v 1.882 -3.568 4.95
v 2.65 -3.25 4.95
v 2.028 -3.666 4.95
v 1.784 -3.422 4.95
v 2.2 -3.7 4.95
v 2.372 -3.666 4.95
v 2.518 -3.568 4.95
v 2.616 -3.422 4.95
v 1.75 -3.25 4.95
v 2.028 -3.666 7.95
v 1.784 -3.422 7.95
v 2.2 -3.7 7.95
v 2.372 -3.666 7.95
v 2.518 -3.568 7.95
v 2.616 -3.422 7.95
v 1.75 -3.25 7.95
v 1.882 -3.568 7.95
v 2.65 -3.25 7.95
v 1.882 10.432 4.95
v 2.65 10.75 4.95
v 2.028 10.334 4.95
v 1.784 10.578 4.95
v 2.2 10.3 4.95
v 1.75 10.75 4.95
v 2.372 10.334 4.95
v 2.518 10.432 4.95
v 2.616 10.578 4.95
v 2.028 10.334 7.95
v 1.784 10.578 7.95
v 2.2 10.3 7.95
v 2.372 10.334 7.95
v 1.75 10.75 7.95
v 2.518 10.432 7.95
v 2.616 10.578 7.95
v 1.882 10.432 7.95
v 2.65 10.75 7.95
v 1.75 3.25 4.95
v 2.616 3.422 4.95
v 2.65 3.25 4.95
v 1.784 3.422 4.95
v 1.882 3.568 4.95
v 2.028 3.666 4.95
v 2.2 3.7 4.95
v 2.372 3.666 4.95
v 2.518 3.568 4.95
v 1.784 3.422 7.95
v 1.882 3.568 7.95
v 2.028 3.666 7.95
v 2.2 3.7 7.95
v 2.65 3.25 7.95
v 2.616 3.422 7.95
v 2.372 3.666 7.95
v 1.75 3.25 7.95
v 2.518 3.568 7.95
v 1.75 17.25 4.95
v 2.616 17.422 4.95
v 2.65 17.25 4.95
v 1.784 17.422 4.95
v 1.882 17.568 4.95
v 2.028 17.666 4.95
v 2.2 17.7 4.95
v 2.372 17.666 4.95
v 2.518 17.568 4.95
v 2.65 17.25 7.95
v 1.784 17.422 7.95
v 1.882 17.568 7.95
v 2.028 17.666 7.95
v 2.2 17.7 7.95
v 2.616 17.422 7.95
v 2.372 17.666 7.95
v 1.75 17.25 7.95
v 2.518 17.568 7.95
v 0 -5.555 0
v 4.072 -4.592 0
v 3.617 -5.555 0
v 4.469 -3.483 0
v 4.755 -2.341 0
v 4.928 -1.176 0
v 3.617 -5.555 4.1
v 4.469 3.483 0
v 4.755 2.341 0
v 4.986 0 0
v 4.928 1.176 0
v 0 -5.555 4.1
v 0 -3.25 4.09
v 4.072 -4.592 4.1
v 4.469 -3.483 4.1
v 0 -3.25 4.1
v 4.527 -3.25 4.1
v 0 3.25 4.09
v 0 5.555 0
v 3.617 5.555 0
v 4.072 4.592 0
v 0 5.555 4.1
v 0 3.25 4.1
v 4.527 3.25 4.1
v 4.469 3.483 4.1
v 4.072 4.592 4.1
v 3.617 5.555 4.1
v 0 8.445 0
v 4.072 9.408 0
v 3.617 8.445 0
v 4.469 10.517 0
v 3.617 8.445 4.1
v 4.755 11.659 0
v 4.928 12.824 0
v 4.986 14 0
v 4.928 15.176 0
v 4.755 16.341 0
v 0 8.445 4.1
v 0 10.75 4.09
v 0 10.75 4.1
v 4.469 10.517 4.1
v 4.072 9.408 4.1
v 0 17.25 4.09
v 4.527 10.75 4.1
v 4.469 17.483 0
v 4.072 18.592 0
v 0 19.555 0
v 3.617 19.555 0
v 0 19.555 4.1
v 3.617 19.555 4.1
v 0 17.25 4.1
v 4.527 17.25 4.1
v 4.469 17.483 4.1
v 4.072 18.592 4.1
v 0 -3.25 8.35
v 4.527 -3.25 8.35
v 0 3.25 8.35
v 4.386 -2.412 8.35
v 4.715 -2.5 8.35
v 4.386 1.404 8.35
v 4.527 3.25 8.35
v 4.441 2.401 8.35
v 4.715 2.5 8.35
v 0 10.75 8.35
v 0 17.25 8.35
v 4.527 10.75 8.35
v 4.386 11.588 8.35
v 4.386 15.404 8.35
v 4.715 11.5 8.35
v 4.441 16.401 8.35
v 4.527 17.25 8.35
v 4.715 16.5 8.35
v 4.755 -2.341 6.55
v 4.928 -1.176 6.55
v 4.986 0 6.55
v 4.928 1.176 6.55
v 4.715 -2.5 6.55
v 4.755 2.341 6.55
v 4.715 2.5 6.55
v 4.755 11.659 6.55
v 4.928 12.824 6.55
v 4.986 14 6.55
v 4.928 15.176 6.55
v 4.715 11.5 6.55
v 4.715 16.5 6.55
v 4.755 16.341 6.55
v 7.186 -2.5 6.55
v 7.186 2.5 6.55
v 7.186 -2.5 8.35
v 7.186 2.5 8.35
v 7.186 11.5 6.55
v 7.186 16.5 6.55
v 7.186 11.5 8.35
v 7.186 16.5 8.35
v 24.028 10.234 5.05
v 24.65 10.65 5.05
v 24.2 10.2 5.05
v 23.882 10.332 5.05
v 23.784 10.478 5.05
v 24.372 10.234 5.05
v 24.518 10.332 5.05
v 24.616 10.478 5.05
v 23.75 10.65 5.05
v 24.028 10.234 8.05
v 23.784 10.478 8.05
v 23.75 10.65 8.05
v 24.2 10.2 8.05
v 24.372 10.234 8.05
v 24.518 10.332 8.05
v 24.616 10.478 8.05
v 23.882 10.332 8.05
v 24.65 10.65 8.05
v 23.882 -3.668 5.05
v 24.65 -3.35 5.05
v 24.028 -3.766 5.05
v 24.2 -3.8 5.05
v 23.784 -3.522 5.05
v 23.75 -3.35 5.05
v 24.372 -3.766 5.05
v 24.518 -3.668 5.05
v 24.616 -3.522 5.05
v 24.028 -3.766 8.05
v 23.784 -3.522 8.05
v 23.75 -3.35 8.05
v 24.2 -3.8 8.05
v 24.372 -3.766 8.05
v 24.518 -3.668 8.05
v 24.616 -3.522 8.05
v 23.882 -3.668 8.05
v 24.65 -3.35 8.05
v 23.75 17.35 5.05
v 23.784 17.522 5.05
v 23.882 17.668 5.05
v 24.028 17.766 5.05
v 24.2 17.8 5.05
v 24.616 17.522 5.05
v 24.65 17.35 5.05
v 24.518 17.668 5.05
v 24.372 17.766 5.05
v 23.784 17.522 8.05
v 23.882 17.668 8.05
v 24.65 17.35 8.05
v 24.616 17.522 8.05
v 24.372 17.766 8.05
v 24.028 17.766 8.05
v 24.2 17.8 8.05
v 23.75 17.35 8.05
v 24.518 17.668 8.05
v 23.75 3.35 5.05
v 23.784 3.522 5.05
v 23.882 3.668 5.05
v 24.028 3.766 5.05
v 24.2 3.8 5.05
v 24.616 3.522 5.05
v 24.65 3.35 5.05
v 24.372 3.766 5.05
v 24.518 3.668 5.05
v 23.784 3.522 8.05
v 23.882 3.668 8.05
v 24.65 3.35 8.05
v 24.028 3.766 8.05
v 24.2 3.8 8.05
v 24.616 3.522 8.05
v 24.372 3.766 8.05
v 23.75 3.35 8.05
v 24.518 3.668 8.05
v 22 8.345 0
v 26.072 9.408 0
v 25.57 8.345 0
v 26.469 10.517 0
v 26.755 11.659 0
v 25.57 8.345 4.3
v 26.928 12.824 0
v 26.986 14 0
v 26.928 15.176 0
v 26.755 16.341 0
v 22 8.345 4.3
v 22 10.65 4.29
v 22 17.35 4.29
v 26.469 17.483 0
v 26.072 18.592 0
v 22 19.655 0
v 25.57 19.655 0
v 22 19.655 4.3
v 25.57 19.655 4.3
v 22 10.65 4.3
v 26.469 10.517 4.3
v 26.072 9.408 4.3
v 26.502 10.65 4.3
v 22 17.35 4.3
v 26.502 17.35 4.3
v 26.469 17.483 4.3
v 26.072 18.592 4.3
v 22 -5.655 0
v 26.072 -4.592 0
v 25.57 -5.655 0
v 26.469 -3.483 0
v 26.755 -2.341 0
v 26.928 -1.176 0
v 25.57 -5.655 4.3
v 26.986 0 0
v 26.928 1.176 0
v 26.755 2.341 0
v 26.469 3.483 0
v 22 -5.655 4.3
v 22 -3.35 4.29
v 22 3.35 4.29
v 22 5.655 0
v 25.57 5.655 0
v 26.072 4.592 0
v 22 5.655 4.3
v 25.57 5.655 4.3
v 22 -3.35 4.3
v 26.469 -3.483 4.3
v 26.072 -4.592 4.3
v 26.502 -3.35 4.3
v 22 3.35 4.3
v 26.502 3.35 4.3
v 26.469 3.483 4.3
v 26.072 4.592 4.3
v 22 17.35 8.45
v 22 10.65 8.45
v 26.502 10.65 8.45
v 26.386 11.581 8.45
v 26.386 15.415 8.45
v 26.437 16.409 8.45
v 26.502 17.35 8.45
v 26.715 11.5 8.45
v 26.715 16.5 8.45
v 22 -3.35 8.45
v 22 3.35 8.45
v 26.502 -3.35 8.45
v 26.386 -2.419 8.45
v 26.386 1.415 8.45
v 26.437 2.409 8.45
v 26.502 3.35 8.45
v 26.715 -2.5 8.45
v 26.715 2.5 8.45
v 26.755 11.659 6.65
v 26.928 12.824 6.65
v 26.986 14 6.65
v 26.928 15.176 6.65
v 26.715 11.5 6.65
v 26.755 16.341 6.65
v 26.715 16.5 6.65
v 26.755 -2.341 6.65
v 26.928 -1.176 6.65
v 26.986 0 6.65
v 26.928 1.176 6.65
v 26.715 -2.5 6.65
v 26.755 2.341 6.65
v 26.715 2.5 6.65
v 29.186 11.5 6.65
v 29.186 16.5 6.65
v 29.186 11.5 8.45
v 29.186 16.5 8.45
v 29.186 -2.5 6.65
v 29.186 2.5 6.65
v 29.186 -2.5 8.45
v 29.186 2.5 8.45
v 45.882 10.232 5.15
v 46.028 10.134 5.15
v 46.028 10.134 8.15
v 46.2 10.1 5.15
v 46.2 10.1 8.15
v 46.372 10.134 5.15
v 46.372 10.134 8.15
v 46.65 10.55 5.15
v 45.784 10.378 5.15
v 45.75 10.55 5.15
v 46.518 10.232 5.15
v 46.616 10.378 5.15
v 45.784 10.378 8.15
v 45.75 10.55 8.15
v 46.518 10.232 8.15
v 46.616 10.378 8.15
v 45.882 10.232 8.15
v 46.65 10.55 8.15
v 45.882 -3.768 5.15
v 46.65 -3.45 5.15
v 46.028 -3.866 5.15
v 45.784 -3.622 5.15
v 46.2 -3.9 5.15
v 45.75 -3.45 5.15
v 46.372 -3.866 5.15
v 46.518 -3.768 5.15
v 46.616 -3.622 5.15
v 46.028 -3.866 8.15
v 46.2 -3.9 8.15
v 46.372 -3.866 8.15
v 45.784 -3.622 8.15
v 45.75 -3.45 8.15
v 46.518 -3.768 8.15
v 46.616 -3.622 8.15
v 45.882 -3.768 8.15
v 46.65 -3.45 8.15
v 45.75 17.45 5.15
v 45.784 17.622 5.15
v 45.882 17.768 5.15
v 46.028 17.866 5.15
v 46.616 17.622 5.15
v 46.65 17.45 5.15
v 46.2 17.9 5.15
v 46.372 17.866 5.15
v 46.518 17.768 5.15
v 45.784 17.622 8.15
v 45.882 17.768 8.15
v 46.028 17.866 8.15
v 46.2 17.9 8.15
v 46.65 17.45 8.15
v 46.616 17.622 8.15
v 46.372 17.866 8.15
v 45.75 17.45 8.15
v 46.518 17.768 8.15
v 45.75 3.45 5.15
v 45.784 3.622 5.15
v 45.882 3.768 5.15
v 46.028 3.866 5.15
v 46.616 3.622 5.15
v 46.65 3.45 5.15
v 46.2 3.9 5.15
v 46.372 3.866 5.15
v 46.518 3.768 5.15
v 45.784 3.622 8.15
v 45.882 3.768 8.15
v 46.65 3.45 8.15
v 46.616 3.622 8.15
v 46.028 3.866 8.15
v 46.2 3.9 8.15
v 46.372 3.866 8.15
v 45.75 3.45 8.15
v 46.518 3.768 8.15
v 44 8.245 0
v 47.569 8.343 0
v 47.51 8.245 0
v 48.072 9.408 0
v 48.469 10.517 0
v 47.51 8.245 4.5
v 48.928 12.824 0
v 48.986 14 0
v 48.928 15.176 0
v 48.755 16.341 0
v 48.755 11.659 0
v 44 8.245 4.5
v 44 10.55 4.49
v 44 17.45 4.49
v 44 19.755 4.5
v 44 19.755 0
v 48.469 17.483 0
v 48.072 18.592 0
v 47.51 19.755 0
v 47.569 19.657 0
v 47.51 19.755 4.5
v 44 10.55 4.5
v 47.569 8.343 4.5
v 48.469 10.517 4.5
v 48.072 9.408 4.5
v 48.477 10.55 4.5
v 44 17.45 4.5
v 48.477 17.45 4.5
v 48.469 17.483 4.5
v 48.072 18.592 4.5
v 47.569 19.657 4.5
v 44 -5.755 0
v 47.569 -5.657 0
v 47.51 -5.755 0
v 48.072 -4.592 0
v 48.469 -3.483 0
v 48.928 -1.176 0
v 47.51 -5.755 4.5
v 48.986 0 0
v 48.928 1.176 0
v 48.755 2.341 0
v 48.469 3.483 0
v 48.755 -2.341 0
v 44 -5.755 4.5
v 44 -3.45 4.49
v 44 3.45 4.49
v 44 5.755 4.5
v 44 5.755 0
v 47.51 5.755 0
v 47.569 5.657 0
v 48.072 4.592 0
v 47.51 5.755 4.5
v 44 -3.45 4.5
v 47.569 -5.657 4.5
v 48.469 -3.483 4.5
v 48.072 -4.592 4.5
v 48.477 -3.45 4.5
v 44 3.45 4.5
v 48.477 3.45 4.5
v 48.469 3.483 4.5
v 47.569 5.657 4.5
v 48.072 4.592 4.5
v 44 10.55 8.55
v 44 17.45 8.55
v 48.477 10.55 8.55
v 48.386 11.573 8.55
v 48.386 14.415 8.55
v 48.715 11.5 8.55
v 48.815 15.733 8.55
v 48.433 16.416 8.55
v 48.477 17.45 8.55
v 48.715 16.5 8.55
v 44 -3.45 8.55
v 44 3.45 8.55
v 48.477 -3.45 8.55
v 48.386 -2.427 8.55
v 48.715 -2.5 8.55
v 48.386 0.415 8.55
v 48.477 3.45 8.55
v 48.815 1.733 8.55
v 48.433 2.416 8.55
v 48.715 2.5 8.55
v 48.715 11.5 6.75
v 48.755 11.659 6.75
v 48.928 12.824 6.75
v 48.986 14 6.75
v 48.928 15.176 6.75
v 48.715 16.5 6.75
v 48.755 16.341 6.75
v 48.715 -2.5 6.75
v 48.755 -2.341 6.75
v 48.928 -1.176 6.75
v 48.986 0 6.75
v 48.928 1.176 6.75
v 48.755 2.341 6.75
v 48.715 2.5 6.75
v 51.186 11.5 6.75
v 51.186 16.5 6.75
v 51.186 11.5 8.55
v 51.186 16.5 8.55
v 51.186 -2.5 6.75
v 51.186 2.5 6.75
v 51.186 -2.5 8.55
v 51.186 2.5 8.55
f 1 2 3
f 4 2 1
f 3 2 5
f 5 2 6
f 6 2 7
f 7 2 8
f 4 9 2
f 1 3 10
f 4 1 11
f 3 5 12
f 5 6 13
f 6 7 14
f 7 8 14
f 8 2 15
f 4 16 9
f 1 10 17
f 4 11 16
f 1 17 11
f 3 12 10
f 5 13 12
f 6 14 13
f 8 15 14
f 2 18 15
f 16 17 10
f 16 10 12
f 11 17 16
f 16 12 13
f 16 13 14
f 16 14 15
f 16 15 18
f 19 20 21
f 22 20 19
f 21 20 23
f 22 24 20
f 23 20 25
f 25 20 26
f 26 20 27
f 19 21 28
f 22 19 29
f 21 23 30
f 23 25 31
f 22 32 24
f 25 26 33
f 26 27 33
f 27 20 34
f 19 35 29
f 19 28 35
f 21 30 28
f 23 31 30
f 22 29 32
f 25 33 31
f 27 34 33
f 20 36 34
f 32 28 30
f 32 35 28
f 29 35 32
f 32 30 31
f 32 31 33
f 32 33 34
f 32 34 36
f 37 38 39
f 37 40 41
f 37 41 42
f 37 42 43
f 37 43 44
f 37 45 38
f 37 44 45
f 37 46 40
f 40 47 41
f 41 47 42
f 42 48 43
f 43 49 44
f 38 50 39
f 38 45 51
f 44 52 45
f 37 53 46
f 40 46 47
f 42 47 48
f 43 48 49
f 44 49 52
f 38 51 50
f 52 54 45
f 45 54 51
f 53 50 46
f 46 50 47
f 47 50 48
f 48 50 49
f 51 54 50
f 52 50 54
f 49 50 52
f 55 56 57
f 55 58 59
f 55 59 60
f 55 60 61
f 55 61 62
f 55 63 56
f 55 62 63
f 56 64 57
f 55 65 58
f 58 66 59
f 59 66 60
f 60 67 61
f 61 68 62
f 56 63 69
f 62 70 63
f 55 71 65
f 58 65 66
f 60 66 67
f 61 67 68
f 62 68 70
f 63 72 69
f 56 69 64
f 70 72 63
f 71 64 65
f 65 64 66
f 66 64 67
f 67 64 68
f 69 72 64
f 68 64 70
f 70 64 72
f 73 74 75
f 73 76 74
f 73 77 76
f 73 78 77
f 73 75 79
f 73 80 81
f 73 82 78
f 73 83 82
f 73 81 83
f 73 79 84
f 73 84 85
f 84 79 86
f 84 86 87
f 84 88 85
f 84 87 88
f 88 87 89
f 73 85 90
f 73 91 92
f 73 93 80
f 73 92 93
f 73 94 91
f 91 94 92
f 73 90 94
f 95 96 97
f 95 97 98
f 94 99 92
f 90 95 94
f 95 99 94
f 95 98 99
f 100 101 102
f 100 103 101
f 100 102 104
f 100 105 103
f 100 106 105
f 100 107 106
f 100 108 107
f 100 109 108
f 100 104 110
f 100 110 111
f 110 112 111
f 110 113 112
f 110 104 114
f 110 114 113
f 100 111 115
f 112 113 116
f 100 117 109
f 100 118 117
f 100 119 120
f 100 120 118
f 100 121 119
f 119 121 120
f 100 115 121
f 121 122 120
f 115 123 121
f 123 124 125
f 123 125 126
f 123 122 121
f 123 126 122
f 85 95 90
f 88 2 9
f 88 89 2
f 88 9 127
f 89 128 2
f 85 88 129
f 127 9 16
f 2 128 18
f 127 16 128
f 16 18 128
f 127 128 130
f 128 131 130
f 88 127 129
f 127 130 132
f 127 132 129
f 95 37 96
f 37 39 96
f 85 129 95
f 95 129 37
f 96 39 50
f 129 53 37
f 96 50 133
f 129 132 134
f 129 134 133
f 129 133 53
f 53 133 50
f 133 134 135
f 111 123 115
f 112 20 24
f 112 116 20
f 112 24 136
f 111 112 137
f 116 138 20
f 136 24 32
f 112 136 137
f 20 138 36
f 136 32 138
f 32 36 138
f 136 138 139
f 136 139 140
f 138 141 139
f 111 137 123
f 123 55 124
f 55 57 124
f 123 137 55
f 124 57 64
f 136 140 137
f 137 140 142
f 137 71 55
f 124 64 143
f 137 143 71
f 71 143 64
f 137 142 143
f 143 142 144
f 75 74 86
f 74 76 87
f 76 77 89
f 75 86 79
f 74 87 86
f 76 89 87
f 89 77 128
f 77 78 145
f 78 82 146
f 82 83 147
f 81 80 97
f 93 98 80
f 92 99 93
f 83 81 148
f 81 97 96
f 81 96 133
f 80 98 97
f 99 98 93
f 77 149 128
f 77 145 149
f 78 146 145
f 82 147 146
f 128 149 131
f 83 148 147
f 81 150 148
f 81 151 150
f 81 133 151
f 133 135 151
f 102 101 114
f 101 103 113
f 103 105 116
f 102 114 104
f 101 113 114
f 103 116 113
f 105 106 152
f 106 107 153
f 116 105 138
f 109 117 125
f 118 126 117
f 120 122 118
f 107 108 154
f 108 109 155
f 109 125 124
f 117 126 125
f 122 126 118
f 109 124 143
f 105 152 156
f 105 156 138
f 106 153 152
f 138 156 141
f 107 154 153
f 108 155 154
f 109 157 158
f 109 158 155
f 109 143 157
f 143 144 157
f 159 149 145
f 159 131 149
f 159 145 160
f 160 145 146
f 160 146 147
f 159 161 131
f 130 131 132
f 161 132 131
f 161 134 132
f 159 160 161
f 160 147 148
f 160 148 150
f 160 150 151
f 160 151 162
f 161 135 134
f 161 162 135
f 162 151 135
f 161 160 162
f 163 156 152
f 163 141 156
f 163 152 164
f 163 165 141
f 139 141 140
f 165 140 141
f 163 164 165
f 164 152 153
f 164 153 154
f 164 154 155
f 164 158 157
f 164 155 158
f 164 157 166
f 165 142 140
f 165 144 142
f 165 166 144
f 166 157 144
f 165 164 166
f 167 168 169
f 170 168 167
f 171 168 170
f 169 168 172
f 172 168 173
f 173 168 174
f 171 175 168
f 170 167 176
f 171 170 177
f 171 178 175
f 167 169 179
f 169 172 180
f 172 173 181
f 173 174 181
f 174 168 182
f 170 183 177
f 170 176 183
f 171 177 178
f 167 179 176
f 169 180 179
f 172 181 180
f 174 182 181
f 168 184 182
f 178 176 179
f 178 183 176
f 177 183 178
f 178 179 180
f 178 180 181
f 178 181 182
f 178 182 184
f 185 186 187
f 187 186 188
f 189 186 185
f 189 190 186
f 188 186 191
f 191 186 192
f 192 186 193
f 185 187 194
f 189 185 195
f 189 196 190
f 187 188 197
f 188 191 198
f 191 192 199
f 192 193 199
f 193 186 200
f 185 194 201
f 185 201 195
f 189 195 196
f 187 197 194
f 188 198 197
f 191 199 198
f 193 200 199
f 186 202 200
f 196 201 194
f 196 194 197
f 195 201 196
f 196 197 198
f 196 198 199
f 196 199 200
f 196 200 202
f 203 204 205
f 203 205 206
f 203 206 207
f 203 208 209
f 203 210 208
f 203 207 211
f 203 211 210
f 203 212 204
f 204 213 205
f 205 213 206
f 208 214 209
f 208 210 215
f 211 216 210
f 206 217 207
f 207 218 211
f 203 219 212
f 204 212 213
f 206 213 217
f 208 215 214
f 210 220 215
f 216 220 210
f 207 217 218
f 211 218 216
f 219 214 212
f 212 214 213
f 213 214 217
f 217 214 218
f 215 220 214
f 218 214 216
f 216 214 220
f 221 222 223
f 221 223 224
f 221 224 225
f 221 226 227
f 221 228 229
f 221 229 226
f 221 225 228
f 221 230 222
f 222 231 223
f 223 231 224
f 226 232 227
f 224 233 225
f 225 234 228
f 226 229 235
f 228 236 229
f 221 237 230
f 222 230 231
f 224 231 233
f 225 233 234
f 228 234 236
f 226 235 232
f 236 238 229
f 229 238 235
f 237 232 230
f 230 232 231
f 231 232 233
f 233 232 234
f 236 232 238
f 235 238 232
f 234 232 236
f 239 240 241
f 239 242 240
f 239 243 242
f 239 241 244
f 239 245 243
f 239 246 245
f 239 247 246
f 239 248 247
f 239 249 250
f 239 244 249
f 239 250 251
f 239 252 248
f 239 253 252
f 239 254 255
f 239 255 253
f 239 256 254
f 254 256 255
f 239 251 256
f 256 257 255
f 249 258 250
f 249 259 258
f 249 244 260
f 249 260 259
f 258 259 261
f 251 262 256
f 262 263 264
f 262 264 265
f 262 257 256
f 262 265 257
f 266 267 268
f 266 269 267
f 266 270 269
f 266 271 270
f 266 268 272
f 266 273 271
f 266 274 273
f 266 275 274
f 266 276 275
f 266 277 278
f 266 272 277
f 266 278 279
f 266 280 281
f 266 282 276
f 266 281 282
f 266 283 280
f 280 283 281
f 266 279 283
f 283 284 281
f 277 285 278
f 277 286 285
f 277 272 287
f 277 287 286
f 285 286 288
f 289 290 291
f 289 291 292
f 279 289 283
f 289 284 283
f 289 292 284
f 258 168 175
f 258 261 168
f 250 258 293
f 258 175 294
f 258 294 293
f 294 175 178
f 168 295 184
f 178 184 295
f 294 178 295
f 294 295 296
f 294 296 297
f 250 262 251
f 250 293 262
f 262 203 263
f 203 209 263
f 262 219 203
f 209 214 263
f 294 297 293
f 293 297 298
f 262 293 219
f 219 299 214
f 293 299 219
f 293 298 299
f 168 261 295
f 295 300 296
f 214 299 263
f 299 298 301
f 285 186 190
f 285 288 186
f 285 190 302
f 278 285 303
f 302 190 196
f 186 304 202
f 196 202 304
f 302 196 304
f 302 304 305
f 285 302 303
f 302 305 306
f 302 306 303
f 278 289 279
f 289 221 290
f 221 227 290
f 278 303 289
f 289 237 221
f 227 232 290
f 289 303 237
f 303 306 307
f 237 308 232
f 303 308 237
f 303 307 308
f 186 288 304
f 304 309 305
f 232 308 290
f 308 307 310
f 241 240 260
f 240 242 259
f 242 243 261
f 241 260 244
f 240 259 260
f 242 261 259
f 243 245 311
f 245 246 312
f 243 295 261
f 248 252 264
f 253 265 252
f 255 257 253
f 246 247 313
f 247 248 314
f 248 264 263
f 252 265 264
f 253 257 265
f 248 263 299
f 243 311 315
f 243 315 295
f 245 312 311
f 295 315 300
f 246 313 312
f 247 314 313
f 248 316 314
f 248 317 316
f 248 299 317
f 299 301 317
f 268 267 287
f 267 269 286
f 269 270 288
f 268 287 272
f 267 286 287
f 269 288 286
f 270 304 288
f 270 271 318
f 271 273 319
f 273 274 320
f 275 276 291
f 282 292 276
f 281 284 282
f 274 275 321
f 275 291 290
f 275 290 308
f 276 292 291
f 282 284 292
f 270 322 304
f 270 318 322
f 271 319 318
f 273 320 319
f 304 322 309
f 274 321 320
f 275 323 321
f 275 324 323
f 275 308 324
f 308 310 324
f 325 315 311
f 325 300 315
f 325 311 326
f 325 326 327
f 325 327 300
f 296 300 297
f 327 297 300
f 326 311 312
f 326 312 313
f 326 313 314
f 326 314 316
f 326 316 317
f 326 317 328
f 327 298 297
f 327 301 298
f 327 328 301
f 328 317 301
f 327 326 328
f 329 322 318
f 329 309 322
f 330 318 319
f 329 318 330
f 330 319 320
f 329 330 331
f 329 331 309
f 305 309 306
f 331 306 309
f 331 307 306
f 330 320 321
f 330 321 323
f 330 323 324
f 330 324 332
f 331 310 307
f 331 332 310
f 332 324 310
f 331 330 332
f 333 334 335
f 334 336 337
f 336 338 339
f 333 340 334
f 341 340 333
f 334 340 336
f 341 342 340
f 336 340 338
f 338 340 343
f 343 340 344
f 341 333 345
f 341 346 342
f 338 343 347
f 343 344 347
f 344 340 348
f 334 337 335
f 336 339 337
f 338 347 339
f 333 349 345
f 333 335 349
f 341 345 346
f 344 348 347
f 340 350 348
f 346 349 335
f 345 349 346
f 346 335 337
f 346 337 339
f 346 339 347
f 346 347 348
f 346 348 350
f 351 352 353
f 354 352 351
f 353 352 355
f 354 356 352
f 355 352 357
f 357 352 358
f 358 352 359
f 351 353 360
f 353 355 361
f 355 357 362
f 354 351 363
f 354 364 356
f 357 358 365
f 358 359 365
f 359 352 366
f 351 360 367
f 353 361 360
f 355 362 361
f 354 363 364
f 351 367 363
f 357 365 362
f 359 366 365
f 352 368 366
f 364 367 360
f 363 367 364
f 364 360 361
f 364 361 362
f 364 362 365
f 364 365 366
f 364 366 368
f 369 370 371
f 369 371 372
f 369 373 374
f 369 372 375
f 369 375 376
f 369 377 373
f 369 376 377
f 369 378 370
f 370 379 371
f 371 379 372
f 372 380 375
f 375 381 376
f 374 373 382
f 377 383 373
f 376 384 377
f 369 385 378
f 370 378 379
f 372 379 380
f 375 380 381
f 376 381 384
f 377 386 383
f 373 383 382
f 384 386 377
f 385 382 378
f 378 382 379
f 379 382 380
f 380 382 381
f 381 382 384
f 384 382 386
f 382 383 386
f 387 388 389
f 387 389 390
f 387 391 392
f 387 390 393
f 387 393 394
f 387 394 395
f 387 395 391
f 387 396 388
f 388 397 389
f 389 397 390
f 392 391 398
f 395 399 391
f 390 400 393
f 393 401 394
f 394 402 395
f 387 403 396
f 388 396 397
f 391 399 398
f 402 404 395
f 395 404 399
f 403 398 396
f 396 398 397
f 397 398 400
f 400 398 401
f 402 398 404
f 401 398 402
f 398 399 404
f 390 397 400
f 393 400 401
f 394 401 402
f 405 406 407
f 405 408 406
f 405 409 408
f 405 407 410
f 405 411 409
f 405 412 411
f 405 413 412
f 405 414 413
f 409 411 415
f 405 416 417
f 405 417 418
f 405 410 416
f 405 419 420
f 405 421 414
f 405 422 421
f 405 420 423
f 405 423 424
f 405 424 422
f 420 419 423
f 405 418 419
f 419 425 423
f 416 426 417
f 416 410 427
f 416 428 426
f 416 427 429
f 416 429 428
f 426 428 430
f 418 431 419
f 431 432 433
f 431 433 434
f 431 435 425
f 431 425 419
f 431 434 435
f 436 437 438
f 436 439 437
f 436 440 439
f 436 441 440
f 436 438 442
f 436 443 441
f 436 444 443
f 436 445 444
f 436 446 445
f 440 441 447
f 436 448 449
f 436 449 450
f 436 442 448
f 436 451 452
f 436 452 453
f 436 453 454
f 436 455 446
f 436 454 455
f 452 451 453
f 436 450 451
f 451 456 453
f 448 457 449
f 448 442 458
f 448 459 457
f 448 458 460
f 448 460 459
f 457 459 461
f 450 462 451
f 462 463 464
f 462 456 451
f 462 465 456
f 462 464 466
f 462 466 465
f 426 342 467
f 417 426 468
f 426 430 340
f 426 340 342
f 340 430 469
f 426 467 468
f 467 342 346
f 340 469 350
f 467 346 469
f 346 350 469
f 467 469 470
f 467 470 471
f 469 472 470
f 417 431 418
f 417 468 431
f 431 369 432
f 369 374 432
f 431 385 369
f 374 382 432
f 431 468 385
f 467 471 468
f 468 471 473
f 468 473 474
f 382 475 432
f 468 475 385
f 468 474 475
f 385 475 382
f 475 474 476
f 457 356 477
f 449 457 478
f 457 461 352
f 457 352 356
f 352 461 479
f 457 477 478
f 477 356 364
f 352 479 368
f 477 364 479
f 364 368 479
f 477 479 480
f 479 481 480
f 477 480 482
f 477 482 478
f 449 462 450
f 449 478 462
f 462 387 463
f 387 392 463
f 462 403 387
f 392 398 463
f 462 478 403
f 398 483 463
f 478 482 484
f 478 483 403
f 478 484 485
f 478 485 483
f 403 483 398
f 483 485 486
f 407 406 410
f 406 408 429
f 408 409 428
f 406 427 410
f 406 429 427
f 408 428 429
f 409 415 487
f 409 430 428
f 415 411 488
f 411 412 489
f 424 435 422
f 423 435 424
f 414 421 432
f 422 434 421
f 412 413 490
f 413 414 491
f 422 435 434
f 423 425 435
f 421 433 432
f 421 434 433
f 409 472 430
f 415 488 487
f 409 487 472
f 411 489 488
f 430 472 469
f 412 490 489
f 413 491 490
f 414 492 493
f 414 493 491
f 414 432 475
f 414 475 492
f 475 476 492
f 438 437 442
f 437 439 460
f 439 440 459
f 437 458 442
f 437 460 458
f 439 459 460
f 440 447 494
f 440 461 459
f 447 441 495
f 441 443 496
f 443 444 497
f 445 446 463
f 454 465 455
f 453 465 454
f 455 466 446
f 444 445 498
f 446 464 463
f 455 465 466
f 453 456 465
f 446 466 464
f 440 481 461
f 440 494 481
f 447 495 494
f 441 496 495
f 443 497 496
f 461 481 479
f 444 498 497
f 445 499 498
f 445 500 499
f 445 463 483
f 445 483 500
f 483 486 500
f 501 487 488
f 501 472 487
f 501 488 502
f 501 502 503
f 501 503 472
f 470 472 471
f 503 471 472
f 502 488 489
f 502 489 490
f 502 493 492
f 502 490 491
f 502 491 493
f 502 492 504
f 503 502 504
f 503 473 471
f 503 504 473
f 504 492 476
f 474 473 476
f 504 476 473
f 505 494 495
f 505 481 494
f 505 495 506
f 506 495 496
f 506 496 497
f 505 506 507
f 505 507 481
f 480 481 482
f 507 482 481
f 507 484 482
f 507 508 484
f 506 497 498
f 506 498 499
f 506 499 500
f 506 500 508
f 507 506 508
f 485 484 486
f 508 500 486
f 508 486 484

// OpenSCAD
// file: swivel_plug_lib.scad
// Swivel plug: closes the open side of the magnet swivel after the bolt is in (README Step 4, item 2).
// The swivel's hex channel and the keyhole slot above it are both open on +X so the bolt can be slid in. Once the bolt is seated, nothing but the
// spring's preload kept it from sliding back out (fit_check 'swivel-retention'). This T-shaped plug slides in the same way the bolt did, wide base in
// the hex channel (blocks the head) and narrow neck in the slot (blocks the thread), and ends flush with the body.
// The numbers below are COPIED from magnet_swivel.scad: fit_check.py sweeps the plug through the real swivel STL, so a drift fails there.
// Units: mm.
body_d      = 24;
floor_t     = 3;
m3_head_h   = 3.5;
hex_af      = 11.11 + 0.5;
hex_h       = 4.2 + 0.4;
top_hole    = 7.0;
top_t       = 4;
head_corner = 11.11 / cos(30) / 2;       // the 1/4"-20 bolt head's corner radius: the plug stops short of it
plug_gap    = 0.6;                       // between the bolt head's corner and the plug's inner end

z0 = floor_t + m3_head_h;                // the hex channel's floor
z1 = z0 + hex_h;                         // its ceiling = the slot's floor
h  = z1 + top_t;                         // the swivel's top

// fit: clearance per side around the base (in the channel) and the neck (in the slot). Printed holes come out small, so three grades are printed and
// the one that goes in with a firm push is kept. ribs: two small crush ribs on the neck that grip the slot's walls (off for the digital sweep: they are interference by design).
module plug(fit = 0.15, ribs = true) {
    xi = head_corner + plug_gap;         // inner end
    xo = body_d / 2;                     // outer face: flush with the body's curve
    intersection() {
        union() {
            translate([xi, -(hex_af / 2 - fit), z0 + fit]) cube([xo - xi, hex_af - 2 * fit, hex_h - 2 * fit]);                    // base, in the channel
            translate([xi, -(top_hole / 2 - fit), z1 - fit - 0.01]) cube([xo - xi, top_hole - 2 * fit, h - z1 + fit + 0.01]);      // neck, up through the slot, flush on top
            if (ribs) for (s = [-1, 1]) translate([xi + 2.2, s * (top_hole / 2 - fit), z1 + 0.6]) cylinder(d = 0.9, h = top_t - 1.0, $fn = 16);
        }
        translate([0, 0, z0 - 1]) cylinder(d = body_d, h = h - z0 + 2, $fn = 64);        // the swivel's own $fn, so the outer face coincides with its wall
    }
    translate([xo - 0.6, -2.5, h - 1.8]) cube([2.8, 5, 1.8]);                  // a small ear to push and pull it by
}
// main file
// Six plugs for one small plate: two each of three grades (fit 0.25 loose, 0.15 snug, 0.05 tight). Print, try them in a swivel, keep the grade that needs a firm push.
include <swivel_plug_lib.scad>
grades = [0.25, 0.15, 0.05];
for (i = [0 : 2], j = [0 : 1])
    translate([i * 22, j * 14, 0]) translate([-(head_corner + plug_gap), 0, -(z0 + grades[i])]) plug(grades[i]);
